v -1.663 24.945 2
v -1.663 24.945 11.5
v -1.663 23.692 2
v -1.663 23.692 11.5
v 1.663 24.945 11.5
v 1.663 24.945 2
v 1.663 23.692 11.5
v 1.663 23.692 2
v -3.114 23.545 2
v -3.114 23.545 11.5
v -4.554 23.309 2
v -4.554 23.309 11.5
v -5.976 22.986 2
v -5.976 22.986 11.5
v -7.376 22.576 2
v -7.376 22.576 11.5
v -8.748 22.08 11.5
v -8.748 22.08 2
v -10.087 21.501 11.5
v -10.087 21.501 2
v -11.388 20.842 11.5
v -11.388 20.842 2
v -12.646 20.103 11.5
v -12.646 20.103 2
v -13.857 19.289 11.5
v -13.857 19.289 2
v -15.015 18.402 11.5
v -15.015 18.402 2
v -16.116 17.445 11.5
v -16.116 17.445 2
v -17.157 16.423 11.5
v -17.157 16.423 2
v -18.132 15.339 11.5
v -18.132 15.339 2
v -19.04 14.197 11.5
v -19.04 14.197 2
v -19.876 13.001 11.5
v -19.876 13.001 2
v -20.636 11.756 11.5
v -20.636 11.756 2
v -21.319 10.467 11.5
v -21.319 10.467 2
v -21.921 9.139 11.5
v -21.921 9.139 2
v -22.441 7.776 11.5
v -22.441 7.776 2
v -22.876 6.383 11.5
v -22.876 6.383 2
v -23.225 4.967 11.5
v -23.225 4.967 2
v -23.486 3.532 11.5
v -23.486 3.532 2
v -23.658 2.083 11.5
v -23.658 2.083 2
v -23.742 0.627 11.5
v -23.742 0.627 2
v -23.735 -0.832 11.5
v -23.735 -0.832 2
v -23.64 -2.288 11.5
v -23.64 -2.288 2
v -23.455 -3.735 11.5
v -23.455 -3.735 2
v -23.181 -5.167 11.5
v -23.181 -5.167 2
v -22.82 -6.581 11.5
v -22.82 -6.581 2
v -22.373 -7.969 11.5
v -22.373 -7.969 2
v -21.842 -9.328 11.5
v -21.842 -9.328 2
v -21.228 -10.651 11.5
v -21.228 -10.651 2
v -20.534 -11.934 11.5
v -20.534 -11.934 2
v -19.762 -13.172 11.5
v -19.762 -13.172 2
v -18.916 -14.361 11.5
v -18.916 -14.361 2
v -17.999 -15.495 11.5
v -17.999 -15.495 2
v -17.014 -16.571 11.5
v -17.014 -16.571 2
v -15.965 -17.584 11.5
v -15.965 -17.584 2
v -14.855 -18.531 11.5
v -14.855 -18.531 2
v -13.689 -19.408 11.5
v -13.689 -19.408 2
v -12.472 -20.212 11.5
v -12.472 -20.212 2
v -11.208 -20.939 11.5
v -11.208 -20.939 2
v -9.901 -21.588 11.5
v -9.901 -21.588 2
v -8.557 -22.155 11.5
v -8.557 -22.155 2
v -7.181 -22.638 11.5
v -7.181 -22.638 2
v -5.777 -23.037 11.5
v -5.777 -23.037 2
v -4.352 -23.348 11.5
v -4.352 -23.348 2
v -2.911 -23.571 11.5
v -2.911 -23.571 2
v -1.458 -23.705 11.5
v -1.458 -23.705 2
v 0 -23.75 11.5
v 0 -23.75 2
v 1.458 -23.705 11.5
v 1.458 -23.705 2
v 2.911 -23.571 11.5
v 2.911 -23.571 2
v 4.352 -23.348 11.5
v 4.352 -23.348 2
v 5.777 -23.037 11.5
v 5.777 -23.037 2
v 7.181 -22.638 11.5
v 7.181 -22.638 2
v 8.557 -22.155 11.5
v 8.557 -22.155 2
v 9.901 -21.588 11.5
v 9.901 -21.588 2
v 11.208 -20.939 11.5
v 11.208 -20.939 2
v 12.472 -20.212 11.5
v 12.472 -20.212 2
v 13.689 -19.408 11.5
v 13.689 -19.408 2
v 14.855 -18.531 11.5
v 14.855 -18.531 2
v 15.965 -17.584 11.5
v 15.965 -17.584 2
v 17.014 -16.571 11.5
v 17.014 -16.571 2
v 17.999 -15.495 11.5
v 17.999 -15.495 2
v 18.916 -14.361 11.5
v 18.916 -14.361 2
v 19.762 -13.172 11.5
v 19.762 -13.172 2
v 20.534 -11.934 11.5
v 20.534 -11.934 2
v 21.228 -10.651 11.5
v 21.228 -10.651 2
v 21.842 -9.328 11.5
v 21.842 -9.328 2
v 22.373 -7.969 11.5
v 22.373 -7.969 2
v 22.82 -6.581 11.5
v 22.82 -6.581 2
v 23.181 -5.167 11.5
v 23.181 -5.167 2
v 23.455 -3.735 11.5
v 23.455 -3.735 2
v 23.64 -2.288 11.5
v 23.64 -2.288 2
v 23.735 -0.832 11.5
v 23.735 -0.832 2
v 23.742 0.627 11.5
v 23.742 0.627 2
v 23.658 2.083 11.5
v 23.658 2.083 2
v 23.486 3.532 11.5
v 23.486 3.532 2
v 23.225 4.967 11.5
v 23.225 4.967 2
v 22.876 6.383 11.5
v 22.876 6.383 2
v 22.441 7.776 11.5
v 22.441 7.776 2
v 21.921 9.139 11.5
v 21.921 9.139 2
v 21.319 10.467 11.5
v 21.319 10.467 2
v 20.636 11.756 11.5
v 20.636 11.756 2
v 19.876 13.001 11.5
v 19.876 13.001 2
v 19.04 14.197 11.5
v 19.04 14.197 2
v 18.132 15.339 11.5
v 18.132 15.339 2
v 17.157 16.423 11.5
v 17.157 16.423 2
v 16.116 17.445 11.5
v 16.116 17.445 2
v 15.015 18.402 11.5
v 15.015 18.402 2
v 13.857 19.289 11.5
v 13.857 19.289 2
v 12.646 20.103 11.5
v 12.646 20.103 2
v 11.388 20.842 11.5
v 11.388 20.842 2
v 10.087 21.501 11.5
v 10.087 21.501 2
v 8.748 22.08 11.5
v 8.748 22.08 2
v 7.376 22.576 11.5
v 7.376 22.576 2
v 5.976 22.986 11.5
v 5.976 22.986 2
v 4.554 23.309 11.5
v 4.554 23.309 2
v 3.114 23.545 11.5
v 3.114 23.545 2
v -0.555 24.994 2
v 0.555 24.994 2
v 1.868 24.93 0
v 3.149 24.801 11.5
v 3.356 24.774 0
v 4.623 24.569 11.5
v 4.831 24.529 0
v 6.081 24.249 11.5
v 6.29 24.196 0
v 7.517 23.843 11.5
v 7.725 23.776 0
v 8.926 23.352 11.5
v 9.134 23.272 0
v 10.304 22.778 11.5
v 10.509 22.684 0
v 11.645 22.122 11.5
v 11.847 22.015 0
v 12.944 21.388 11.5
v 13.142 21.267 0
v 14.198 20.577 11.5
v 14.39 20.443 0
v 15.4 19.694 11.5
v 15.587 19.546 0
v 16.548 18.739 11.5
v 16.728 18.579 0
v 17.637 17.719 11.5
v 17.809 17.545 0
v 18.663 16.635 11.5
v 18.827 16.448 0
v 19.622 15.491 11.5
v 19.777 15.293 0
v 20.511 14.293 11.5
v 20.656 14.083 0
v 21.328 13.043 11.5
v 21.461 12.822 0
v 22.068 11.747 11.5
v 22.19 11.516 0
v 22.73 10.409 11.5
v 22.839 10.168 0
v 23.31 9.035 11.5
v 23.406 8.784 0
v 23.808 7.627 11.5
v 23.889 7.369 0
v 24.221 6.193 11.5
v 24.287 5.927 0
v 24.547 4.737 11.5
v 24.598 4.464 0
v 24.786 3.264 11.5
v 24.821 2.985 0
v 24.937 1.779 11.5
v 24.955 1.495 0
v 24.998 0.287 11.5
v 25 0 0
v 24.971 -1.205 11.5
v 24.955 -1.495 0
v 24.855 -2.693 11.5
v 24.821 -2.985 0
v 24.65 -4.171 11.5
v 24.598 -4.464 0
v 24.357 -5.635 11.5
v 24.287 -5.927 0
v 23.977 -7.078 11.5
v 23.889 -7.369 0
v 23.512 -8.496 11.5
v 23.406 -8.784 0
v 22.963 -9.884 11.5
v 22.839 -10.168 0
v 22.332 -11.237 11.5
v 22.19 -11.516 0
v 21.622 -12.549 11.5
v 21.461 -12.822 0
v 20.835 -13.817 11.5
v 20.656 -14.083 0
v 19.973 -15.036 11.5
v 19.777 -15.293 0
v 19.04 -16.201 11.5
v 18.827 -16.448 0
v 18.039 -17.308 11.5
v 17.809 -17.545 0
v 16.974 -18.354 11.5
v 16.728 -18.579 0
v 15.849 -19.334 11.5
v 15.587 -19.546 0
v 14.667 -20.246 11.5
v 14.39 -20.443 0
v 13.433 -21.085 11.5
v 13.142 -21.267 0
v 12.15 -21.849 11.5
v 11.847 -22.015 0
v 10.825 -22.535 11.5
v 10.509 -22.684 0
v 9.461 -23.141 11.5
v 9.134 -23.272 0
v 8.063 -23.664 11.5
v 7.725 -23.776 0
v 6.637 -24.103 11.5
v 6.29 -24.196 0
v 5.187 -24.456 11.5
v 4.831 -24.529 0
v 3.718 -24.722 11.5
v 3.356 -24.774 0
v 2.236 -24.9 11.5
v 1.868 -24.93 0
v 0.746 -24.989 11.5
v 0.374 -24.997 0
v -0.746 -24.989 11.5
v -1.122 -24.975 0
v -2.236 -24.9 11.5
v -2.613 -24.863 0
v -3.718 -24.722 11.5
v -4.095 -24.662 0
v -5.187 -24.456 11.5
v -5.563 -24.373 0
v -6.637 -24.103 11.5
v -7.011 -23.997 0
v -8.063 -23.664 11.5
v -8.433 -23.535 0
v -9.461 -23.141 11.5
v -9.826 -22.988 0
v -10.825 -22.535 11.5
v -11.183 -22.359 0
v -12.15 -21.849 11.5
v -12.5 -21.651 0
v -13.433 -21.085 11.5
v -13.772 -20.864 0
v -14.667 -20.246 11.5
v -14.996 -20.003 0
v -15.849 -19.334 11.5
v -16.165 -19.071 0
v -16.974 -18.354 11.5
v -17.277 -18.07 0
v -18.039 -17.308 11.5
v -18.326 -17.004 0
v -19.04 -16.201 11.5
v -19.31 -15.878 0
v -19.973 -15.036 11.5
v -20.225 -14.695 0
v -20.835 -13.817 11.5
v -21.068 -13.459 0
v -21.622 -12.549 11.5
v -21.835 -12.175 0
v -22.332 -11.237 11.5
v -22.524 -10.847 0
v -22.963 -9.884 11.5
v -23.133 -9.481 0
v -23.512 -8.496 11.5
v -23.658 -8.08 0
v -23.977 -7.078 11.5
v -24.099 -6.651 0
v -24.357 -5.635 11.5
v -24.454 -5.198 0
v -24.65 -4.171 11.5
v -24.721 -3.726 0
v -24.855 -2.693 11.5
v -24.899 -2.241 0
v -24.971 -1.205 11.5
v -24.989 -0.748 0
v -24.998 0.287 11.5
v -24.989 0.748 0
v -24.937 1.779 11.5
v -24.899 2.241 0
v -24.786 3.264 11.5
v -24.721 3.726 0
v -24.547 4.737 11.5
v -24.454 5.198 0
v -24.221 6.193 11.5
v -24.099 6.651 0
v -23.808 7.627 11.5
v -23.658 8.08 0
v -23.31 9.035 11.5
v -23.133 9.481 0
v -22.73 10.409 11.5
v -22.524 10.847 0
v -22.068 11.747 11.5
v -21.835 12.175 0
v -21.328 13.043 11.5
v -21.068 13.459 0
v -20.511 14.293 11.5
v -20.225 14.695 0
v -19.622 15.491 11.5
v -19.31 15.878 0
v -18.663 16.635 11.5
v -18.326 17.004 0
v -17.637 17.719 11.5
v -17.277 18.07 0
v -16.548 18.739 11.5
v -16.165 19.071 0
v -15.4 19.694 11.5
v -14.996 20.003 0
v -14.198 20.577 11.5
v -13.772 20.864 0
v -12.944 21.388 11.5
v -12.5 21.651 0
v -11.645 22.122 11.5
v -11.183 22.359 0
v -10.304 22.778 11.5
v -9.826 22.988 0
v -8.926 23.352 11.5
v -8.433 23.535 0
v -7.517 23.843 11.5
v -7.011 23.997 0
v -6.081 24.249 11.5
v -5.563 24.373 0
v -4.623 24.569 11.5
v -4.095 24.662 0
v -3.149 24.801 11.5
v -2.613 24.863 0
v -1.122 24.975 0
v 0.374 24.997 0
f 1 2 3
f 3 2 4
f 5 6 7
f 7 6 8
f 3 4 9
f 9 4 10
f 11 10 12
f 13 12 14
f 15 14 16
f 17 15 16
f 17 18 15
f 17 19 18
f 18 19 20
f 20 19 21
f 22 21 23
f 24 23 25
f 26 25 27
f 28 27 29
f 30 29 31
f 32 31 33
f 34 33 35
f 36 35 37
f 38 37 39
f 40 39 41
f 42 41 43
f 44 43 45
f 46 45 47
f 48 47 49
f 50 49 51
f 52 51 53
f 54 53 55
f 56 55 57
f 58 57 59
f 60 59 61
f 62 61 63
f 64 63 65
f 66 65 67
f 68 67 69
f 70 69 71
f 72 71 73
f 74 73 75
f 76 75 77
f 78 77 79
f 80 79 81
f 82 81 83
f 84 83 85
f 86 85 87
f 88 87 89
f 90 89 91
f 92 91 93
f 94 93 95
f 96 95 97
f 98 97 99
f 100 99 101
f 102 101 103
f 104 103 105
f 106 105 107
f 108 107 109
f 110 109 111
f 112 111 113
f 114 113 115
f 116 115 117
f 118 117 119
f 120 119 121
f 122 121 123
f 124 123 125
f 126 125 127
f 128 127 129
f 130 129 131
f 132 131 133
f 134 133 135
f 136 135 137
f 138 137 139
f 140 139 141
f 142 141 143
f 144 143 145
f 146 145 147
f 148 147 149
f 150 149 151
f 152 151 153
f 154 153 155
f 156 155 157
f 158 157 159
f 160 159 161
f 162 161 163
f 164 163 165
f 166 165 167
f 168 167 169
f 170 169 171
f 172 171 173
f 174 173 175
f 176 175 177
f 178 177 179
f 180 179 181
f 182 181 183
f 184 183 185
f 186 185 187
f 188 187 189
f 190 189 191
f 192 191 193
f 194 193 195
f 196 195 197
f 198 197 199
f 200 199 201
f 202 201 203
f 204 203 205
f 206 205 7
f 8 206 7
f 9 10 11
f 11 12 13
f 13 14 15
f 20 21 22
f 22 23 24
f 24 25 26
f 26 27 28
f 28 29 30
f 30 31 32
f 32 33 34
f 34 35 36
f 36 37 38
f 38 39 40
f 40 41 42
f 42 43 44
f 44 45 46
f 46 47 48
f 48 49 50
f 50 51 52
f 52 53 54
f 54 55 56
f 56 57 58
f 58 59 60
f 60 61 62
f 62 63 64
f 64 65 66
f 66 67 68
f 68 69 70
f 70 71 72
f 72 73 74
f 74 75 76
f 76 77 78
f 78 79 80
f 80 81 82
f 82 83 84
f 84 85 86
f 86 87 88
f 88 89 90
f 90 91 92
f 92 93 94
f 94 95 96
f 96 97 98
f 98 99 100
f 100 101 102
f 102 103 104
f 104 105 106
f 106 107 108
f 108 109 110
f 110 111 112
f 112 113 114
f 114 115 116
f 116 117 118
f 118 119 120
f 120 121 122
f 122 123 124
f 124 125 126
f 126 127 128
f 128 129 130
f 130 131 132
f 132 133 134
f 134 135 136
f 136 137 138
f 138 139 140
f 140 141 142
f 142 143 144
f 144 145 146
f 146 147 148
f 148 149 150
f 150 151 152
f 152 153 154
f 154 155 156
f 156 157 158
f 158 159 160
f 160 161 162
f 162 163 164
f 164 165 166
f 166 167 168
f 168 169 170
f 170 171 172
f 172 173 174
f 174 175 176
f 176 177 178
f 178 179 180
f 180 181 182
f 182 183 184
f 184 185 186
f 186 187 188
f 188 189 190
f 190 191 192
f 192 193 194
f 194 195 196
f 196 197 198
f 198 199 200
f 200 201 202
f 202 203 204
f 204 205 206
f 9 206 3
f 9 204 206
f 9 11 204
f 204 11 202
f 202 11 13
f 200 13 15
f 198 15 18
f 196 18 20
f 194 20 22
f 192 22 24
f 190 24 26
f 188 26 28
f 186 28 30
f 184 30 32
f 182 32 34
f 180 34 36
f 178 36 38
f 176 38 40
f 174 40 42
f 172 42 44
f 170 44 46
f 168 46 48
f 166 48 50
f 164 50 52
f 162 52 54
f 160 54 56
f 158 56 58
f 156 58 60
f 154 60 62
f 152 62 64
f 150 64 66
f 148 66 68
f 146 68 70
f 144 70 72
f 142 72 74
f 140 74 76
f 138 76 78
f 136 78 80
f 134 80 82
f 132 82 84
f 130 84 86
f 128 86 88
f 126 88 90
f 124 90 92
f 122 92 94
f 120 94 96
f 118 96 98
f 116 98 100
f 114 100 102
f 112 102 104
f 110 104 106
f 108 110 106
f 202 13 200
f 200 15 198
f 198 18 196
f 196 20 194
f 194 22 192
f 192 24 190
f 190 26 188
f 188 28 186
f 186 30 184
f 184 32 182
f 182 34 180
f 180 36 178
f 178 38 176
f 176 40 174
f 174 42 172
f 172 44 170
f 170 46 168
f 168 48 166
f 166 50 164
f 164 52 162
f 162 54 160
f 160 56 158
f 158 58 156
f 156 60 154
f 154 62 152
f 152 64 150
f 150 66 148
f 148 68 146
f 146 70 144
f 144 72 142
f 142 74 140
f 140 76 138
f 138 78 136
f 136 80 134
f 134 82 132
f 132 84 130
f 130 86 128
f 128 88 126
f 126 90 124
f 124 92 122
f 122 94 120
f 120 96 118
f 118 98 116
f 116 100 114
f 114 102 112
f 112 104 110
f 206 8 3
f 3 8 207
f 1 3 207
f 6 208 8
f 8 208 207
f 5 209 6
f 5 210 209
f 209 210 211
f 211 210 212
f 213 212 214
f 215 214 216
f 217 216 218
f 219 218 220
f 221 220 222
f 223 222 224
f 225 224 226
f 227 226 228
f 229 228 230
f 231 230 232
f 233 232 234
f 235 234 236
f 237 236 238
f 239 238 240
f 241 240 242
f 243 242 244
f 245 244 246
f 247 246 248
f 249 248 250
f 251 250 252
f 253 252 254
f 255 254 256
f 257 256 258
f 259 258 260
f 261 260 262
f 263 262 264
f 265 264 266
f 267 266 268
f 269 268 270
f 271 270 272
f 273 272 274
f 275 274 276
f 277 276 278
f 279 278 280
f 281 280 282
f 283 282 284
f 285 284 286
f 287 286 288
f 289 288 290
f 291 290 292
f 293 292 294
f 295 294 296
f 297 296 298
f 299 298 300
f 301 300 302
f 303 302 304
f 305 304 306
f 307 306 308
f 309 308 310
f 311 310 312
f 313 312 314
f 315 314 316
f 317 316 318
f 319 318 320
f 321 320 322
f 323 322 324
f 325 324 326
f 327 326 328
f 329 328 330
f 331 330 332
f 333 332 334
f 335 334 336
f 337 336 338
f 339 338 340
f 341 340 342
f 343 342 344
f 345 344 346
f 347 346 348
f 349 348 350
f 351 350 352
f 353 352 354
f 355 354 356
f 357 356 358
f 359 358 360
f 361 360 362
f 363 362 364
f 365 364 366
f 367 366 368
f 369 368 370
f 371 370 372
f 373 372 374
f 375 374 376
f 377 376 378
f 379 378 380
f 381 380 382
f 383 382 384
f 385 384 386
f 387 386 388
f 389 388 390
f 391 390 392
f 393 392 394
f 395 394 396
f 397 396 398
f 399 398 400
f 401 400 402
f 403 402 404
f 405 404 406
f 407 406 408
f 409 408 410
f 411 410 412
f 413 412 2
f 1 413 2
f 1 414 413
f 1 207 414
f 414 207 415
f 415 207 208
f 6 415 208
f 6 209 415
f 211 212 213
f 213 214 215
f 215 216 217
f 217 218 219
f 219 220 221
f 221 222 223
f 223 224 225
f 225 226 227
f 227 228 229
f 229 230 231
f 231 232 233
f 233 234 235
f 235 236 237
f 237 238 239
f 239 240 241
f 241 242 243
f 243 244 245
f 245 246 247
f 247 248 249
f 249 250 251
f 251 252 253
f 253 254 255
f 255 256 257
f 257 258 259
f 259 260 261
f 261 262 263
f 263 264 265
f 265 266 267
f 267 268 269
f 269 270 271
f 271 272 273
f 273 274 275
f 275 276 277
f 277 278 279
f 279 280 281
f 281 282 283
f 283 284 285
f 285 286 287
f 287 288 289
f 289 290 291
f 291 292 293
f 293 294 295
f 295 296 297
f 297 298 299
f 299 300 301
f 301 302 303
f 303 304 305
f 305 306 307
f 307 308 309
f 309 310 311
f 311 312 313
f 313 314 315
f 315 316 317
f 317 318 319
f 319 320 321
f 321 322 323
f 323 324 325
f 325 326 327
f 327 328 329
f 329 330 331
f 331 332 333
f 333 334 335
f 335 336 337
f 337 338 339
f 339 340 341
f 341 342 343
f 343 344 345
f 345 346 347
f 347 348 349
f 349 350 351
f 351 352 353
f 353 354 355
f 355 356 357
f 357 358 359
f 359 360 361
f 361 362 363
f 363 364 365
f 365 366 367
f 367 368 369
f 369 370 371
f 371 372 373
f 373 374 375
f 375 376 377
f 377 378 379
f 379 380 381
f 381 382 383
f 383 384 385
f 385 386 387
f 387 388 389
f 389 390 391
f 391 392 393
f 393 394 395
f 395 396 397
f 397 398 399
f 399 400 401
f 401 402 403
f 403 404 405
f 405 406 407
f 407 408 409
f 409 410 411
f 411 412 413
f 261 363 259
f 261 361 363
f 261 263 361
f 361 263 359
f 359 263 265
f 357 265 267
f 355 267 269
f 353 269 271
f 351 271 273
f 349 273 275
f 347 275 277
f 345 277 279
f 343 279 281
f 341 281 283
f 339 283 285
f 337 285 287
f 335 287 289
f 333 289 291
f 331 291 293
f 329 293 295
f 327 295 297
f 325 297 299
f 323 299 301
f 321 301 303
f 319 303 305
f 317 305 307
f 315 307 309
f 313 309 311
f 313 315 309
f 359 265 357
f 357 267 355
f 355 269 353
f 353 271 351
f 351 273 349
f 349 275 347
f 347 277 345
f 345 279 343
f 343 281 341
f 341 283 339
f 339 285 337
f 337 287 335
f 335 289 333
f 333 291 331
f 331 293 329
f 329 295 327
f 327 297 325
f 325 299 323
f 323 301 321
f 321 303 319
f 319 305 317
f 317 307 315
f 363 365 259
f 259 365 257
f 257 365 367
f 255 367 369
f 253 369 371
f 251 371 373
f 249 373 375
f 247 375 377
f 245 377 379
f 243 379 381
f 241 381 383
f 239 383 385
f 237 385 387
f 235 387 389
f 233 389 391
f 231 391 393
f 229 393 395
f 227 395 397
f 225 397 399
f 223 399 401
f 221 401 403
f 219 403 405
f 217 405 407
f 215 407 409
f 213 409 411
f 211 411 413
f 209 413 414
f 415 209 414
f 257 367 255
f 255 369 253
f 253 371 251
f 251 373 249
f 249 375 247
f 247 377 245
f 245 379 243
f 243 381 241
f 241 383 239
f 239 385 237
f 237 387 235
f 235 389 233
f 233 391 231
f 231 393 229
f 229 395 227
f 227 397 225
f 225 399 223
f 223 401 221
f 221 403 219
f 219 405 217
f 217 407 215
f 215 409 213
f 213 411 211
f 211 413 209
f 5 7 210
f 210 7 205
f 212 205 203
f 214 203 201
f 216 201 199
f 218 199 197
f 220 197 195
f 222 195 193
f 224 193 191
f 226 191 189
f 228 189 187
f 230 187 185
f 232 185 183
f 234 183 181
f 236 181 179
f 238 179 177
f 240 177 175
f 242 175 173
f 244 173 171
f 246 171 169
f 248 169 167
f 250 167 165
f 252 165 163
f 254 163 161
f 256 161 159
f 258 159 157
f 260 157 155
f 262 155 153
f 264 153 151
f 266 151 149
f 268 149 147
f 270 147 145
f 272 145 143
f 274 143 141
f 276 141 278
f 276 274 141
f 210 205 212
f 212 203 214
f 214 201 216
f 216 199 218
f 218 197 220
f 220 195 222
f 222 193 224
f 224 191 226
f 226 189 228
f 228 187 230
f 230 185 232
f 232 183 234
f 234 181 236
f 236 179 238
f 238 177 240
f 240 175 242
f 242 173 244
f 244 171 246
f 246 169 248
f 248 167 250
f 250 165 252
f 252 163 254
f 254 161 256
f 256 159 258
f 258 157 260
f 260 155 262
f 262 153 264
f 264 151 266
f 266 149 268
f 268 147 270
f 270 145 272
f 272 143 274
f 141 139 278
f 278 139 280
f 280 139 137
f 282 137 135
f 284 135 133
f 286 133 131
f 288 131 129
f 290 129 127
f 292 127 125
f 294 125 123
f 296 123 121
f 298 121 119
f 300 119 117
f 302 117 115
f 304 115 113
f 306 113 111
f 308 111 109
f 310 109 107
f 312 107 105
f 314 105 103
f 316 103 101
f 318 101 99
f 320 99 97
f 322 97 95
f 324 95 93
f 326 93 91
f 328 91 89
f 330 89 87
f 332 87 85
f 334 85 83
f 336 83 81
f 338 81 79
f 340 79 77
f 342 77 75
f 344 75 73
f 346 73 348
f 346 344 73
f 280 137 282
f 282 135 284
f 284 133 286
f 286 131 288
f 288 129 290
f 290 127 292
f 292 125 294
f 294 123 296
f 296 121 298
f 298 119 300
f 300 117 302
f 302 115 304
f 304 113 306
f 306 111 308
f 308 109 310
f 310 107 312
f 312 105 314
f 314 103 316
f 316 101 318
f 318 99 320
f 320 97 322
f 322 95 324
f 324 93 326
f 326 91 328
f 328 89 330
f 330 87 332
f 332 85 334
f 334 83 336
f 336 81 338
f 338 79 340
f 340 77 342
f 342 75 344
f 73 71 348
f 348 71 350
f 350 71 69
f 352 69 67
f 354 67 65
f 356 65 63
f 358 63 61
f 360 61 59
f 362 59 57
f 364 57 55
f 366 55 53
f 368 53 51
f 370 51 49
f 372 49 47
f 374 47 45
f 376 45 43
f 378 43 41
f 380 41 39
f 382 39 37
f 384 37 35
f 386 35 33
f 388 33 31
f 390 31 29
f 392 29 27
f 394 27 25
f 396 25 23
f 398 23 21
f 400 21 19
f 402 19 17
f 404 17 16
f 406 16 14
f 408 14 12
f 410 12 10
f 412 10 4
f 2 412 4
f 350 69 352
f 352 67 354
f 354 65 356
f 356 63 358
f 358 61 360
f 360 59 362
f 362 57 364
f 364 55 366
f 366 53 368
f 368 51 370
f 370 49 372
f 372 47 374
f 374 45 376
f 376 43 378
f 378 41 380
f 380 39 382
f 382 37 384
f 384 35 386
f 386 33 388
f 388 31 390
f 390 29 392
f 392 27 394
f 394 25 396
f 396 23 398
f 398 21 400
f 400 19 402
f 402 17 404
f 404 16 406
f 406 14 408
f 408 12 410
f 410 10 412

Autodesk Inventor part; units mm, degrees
ref_plane "YZ Plane" through (0, 0, 0) normal (1, 0, 0) x (0, 1, 0)
ref_plane "XZ Plane" through (0, 0, 0) normal (0, 1, 0) x (-1, 0, 0)
ref_plane "XY Plane" through (0, 0, 0) normal (0, 0, 1) x (1, 0, 0)
sketch "Sketch1" plane through (0, 0, 0) normal (0, 0, 1) x (1, 0, 0)
  circle A0 centre (0, 0) radius 25
  dimension "d0" = 50
extrude "Extrusion1" add sketch "Sketch1" along normal blind 11.5
sketch "Sketch2" plane through (0, 0, 11.5) normal (0, 0, 1) x (1, 0, 0)
  arc A0 (-1.6631, 23.6917) -> (1.6631, 23.6917) centre (0, 0) ccw
  line L0 (1.6631, 23.6917) -> (-1.6631, 23.6917)
  dimension "d4" = 47.5
  dimension "d8" = 23.6917
extrude "Extrusion2" cut sketch "Sketch2" against normal blind 9.5
sketch "Sketch3" plane through (-1.6631, 23.6917, 11.5) normal (0, -1, 0) x (1, 0, 0)
  line L0 (0, 0) -> (3.3261, 0)
  line L1 (3.3261, 0) -> (3.3261, -9.5)
  line L2 (3.3261, -9.5) -> (0, -9.5)
  line L3 (0, -9.5) -> (0, 0)
  point P0 (1.6631, -11.5)
  dimension "d9" = 9.5
  dimension "d10" = 3.3261
extrude "Extrusion3" cut sketch "Sketch3" against normal blind 1.5
properties part number "pruebaCargadorReceptor"
